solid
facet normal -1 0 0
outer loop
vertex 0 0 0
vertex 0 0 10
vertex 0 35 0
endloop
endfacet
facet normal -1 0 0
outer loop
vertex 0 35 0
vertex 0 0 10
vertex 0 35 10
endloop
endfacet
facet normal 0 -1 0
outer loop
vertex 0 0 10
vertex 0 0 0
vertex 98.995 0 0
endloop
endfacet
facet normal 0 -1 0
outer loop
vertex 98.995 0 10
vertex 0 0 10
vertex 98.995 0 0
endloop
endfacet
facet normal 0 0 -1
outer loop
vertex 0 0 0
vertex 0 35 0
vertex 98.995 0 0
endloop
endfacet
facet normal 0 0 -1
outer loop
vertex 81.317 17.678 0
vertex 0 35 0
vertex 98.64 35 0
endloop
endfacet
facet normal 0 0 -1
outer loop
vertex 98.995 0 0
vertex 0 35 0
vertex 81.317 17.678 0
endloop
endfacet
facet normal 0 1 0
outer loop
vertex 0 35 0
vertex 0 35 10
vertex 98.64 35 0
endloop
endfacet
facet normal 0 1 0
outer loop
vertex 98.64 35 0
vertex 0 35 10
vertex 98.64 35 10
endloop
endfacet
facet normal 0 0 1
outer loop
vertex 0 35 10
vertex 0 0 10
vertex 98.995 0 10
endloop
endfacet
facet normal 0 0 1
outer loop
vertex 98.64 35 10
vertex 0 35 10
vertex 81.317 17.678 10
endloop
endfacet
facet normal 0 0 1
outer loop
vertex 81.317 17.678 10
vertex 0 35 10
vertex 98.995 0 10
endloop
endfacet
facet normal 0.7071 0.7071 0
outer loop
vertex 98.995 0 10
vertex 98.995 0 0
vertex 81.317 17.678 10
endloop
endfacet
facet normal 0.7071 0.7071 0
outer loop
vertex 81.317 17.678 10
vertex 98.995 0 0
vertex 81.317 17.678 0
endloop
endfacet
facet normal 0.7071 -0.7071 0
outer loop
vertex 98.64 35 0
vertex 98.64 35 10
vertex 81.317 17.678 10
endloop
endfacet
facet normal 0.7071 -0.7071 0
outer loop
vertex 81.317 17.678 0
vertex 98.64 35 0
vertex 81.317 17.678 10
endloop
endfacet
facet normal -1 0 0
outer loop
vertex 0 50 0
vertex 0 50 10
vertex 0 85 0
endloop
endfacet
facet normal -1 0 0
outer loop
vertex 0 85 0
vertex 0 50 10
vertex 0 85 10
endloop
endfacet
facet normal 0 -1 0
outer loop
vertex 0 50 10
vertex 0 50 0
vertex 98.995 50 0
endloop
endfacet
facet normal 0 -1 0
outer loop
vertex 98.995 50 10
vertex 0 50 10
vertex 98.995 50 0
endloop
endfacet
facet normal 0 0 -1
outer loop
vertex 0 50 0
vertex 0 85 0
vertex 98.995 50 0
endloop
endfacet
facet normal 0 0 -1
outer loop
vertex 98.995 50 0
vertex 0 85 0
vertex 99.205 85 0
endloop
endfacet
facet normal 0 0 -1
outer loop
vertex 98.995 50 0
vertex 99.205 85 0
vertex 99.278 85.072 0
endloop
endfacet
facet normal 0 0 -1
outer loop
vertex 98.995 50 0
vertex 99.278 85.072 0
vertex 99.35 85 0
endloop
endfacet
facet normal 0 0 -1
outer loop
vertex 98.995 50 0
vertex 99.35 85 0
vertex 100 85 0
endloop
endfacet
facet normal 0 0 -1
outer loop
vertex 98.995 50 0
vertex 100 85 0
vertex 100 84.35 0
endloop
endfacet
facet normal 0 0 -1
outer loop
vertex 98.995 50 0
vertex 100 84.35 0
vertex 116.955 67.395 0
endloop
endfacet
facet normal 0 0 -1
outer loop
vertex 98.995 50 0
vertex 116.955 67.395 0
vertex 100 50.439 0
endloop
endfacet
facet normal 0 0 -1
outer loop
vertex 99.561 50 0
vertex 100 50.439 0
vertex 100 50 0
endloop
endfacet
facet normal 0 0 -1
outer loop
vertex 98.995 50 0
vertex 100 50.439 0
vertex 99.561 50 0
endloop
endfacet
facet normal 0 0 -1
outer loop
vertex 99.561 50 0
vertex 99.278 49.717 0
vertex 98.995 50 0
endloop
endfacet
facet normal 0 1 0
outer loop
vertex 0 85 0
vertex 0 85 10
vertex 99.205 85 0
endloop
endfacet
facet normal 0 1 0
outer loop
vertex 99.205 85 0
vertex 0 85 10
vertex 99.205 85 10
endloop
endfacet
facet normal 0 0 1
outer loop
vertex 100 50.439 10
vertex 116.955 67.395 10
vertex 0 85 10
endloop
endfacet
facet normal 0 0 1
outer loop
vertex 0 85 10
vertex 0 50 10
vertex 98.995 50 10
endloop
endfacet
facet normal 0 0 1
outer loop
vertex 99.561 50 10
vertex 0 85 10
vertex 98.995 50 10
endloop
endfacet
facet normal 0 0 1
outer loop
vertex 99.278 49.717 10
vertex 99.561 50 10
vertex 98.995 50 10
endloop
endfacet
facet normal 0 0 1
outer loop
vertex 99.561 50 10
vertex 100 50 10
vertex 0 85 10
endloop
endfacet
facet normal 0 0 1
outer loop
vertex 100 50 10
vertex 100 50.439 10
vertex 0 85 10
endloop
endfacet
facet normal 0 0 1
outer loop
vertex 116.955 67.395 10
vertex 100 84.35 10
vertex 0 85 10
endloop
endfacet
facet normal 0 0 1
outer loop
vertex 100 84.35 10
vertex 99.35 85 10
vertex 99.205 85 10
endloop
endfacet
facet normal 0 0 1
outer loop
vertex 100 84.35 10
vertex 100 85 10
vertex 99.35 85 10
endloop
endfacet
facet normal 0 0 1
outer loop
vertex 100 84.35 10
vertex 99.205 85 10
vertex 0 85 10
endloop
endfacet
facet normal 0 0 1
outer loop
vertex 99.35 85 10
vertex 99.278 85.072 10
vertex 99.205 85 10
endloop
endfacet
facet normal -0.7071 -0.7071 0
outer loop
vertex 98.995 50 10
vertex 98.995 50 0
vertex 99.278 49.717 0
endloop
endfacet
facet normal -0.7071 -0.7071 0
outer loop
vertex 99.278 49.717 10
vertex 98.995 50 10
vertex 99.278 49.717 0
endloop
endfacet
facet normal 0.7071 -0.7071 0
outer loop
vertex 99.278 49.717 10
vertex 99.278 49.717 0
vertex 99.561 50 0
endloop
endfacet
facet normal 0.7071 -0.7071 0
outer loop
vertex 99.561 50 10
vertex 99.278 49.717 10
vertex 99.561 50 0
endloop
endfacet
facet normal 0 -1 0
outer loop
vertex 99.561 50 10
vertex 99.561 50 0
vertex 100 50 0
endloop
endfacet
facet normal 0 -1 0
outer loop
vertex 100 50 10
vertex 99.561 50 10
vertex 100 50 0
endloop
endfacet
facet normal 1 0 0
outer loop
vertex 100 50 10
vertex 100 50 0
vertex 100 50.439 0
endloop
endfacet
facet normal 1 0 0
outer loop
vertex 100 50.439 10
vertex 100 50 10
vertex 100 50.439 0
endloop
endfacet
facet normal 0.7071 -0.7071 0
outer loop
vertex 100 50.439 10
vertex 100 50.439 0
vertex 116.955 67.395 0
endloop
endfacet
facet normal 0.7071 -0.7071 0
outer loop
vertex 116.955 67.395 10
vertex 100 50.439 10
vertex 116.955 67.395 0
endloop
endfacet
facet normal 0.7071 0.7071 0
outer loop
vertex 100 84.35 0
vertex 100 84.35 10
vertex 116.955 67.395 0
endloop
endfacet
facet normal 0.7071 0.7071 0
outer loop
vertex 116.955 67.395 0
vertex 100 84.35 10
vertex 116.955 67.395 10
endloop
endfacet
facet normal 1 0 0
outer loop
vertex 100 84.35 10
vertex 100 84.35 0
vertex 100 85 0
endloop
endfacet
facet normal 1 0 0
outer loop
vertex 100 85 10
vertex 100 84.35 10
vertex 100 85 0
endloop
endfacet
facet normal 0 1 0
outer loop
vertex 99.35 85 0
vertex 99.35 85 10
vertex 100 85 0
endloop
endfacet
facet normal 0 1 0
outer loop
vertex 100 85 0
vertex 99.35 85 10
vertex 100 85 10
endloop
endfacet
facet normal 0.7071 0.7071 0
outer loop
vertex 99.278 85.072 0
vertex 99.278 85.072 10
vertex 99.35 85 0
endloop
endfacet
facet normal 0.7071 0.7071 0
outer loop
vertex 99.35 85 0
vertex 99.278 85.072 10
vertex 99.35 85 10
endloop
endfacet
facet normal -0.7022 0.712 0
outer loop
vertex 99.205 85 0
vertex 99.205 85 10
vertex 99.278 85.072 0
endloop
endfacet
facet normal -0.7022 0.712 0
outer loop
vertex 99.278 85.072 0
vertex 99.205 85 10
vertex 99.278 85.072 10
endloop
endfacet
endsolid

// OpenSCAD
//Азотистые основания:
//Аденин
difference (){
cube ([100,35,10]);
rotate ([0,0,45])translate ([70,-80,-1])cube ([35,35,12]);
}
//Тимин
translate ([0,50,0]){
cube ([100,35,10]);
rotate ([0,0,45])translate ([70,-70.4,0])cube ([25,25,10]);
}
